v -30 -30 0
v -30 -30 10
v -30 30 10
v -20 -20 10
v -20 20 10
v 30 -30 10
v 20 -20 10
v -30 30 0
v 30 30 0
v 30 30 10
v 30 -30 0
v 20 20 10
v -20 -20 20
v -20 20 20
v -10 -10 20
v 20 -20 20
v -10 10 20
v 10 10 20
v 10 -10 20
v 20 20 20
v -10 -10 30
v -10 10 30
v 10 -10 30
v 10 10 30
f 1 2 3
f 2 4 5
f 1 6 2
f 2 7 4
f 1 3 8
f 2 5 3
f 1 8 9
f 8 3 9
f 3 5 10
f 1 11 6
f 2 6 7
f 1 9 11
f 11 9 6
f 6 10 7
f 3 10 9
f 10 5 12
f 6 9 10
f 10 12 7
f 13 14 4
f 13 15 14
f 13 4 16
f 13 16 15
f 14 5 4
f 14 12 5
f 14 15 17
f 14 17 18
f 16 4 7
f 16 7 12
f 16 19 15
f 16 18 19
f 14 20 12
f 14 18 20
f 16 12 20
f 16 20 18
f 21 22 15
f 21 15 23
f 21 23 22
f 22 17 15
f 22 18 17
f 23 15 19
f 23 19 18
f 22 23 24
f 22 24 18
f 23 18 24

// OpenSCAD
$fn = 100;

// 底面（60mm × 60mm）
linear_extrude(height=10)
    square([60, 60], center=true);

// 中段（40mm × 40mm）
translate([0, 0, 10])
    linear_extrude(height=10)
        square([40, 40], center=true);

// 上段（20mm × 20mm）
translate([0, 0, 20])
    linear_extrude(height=10)
        square([20, 20], center=true);
